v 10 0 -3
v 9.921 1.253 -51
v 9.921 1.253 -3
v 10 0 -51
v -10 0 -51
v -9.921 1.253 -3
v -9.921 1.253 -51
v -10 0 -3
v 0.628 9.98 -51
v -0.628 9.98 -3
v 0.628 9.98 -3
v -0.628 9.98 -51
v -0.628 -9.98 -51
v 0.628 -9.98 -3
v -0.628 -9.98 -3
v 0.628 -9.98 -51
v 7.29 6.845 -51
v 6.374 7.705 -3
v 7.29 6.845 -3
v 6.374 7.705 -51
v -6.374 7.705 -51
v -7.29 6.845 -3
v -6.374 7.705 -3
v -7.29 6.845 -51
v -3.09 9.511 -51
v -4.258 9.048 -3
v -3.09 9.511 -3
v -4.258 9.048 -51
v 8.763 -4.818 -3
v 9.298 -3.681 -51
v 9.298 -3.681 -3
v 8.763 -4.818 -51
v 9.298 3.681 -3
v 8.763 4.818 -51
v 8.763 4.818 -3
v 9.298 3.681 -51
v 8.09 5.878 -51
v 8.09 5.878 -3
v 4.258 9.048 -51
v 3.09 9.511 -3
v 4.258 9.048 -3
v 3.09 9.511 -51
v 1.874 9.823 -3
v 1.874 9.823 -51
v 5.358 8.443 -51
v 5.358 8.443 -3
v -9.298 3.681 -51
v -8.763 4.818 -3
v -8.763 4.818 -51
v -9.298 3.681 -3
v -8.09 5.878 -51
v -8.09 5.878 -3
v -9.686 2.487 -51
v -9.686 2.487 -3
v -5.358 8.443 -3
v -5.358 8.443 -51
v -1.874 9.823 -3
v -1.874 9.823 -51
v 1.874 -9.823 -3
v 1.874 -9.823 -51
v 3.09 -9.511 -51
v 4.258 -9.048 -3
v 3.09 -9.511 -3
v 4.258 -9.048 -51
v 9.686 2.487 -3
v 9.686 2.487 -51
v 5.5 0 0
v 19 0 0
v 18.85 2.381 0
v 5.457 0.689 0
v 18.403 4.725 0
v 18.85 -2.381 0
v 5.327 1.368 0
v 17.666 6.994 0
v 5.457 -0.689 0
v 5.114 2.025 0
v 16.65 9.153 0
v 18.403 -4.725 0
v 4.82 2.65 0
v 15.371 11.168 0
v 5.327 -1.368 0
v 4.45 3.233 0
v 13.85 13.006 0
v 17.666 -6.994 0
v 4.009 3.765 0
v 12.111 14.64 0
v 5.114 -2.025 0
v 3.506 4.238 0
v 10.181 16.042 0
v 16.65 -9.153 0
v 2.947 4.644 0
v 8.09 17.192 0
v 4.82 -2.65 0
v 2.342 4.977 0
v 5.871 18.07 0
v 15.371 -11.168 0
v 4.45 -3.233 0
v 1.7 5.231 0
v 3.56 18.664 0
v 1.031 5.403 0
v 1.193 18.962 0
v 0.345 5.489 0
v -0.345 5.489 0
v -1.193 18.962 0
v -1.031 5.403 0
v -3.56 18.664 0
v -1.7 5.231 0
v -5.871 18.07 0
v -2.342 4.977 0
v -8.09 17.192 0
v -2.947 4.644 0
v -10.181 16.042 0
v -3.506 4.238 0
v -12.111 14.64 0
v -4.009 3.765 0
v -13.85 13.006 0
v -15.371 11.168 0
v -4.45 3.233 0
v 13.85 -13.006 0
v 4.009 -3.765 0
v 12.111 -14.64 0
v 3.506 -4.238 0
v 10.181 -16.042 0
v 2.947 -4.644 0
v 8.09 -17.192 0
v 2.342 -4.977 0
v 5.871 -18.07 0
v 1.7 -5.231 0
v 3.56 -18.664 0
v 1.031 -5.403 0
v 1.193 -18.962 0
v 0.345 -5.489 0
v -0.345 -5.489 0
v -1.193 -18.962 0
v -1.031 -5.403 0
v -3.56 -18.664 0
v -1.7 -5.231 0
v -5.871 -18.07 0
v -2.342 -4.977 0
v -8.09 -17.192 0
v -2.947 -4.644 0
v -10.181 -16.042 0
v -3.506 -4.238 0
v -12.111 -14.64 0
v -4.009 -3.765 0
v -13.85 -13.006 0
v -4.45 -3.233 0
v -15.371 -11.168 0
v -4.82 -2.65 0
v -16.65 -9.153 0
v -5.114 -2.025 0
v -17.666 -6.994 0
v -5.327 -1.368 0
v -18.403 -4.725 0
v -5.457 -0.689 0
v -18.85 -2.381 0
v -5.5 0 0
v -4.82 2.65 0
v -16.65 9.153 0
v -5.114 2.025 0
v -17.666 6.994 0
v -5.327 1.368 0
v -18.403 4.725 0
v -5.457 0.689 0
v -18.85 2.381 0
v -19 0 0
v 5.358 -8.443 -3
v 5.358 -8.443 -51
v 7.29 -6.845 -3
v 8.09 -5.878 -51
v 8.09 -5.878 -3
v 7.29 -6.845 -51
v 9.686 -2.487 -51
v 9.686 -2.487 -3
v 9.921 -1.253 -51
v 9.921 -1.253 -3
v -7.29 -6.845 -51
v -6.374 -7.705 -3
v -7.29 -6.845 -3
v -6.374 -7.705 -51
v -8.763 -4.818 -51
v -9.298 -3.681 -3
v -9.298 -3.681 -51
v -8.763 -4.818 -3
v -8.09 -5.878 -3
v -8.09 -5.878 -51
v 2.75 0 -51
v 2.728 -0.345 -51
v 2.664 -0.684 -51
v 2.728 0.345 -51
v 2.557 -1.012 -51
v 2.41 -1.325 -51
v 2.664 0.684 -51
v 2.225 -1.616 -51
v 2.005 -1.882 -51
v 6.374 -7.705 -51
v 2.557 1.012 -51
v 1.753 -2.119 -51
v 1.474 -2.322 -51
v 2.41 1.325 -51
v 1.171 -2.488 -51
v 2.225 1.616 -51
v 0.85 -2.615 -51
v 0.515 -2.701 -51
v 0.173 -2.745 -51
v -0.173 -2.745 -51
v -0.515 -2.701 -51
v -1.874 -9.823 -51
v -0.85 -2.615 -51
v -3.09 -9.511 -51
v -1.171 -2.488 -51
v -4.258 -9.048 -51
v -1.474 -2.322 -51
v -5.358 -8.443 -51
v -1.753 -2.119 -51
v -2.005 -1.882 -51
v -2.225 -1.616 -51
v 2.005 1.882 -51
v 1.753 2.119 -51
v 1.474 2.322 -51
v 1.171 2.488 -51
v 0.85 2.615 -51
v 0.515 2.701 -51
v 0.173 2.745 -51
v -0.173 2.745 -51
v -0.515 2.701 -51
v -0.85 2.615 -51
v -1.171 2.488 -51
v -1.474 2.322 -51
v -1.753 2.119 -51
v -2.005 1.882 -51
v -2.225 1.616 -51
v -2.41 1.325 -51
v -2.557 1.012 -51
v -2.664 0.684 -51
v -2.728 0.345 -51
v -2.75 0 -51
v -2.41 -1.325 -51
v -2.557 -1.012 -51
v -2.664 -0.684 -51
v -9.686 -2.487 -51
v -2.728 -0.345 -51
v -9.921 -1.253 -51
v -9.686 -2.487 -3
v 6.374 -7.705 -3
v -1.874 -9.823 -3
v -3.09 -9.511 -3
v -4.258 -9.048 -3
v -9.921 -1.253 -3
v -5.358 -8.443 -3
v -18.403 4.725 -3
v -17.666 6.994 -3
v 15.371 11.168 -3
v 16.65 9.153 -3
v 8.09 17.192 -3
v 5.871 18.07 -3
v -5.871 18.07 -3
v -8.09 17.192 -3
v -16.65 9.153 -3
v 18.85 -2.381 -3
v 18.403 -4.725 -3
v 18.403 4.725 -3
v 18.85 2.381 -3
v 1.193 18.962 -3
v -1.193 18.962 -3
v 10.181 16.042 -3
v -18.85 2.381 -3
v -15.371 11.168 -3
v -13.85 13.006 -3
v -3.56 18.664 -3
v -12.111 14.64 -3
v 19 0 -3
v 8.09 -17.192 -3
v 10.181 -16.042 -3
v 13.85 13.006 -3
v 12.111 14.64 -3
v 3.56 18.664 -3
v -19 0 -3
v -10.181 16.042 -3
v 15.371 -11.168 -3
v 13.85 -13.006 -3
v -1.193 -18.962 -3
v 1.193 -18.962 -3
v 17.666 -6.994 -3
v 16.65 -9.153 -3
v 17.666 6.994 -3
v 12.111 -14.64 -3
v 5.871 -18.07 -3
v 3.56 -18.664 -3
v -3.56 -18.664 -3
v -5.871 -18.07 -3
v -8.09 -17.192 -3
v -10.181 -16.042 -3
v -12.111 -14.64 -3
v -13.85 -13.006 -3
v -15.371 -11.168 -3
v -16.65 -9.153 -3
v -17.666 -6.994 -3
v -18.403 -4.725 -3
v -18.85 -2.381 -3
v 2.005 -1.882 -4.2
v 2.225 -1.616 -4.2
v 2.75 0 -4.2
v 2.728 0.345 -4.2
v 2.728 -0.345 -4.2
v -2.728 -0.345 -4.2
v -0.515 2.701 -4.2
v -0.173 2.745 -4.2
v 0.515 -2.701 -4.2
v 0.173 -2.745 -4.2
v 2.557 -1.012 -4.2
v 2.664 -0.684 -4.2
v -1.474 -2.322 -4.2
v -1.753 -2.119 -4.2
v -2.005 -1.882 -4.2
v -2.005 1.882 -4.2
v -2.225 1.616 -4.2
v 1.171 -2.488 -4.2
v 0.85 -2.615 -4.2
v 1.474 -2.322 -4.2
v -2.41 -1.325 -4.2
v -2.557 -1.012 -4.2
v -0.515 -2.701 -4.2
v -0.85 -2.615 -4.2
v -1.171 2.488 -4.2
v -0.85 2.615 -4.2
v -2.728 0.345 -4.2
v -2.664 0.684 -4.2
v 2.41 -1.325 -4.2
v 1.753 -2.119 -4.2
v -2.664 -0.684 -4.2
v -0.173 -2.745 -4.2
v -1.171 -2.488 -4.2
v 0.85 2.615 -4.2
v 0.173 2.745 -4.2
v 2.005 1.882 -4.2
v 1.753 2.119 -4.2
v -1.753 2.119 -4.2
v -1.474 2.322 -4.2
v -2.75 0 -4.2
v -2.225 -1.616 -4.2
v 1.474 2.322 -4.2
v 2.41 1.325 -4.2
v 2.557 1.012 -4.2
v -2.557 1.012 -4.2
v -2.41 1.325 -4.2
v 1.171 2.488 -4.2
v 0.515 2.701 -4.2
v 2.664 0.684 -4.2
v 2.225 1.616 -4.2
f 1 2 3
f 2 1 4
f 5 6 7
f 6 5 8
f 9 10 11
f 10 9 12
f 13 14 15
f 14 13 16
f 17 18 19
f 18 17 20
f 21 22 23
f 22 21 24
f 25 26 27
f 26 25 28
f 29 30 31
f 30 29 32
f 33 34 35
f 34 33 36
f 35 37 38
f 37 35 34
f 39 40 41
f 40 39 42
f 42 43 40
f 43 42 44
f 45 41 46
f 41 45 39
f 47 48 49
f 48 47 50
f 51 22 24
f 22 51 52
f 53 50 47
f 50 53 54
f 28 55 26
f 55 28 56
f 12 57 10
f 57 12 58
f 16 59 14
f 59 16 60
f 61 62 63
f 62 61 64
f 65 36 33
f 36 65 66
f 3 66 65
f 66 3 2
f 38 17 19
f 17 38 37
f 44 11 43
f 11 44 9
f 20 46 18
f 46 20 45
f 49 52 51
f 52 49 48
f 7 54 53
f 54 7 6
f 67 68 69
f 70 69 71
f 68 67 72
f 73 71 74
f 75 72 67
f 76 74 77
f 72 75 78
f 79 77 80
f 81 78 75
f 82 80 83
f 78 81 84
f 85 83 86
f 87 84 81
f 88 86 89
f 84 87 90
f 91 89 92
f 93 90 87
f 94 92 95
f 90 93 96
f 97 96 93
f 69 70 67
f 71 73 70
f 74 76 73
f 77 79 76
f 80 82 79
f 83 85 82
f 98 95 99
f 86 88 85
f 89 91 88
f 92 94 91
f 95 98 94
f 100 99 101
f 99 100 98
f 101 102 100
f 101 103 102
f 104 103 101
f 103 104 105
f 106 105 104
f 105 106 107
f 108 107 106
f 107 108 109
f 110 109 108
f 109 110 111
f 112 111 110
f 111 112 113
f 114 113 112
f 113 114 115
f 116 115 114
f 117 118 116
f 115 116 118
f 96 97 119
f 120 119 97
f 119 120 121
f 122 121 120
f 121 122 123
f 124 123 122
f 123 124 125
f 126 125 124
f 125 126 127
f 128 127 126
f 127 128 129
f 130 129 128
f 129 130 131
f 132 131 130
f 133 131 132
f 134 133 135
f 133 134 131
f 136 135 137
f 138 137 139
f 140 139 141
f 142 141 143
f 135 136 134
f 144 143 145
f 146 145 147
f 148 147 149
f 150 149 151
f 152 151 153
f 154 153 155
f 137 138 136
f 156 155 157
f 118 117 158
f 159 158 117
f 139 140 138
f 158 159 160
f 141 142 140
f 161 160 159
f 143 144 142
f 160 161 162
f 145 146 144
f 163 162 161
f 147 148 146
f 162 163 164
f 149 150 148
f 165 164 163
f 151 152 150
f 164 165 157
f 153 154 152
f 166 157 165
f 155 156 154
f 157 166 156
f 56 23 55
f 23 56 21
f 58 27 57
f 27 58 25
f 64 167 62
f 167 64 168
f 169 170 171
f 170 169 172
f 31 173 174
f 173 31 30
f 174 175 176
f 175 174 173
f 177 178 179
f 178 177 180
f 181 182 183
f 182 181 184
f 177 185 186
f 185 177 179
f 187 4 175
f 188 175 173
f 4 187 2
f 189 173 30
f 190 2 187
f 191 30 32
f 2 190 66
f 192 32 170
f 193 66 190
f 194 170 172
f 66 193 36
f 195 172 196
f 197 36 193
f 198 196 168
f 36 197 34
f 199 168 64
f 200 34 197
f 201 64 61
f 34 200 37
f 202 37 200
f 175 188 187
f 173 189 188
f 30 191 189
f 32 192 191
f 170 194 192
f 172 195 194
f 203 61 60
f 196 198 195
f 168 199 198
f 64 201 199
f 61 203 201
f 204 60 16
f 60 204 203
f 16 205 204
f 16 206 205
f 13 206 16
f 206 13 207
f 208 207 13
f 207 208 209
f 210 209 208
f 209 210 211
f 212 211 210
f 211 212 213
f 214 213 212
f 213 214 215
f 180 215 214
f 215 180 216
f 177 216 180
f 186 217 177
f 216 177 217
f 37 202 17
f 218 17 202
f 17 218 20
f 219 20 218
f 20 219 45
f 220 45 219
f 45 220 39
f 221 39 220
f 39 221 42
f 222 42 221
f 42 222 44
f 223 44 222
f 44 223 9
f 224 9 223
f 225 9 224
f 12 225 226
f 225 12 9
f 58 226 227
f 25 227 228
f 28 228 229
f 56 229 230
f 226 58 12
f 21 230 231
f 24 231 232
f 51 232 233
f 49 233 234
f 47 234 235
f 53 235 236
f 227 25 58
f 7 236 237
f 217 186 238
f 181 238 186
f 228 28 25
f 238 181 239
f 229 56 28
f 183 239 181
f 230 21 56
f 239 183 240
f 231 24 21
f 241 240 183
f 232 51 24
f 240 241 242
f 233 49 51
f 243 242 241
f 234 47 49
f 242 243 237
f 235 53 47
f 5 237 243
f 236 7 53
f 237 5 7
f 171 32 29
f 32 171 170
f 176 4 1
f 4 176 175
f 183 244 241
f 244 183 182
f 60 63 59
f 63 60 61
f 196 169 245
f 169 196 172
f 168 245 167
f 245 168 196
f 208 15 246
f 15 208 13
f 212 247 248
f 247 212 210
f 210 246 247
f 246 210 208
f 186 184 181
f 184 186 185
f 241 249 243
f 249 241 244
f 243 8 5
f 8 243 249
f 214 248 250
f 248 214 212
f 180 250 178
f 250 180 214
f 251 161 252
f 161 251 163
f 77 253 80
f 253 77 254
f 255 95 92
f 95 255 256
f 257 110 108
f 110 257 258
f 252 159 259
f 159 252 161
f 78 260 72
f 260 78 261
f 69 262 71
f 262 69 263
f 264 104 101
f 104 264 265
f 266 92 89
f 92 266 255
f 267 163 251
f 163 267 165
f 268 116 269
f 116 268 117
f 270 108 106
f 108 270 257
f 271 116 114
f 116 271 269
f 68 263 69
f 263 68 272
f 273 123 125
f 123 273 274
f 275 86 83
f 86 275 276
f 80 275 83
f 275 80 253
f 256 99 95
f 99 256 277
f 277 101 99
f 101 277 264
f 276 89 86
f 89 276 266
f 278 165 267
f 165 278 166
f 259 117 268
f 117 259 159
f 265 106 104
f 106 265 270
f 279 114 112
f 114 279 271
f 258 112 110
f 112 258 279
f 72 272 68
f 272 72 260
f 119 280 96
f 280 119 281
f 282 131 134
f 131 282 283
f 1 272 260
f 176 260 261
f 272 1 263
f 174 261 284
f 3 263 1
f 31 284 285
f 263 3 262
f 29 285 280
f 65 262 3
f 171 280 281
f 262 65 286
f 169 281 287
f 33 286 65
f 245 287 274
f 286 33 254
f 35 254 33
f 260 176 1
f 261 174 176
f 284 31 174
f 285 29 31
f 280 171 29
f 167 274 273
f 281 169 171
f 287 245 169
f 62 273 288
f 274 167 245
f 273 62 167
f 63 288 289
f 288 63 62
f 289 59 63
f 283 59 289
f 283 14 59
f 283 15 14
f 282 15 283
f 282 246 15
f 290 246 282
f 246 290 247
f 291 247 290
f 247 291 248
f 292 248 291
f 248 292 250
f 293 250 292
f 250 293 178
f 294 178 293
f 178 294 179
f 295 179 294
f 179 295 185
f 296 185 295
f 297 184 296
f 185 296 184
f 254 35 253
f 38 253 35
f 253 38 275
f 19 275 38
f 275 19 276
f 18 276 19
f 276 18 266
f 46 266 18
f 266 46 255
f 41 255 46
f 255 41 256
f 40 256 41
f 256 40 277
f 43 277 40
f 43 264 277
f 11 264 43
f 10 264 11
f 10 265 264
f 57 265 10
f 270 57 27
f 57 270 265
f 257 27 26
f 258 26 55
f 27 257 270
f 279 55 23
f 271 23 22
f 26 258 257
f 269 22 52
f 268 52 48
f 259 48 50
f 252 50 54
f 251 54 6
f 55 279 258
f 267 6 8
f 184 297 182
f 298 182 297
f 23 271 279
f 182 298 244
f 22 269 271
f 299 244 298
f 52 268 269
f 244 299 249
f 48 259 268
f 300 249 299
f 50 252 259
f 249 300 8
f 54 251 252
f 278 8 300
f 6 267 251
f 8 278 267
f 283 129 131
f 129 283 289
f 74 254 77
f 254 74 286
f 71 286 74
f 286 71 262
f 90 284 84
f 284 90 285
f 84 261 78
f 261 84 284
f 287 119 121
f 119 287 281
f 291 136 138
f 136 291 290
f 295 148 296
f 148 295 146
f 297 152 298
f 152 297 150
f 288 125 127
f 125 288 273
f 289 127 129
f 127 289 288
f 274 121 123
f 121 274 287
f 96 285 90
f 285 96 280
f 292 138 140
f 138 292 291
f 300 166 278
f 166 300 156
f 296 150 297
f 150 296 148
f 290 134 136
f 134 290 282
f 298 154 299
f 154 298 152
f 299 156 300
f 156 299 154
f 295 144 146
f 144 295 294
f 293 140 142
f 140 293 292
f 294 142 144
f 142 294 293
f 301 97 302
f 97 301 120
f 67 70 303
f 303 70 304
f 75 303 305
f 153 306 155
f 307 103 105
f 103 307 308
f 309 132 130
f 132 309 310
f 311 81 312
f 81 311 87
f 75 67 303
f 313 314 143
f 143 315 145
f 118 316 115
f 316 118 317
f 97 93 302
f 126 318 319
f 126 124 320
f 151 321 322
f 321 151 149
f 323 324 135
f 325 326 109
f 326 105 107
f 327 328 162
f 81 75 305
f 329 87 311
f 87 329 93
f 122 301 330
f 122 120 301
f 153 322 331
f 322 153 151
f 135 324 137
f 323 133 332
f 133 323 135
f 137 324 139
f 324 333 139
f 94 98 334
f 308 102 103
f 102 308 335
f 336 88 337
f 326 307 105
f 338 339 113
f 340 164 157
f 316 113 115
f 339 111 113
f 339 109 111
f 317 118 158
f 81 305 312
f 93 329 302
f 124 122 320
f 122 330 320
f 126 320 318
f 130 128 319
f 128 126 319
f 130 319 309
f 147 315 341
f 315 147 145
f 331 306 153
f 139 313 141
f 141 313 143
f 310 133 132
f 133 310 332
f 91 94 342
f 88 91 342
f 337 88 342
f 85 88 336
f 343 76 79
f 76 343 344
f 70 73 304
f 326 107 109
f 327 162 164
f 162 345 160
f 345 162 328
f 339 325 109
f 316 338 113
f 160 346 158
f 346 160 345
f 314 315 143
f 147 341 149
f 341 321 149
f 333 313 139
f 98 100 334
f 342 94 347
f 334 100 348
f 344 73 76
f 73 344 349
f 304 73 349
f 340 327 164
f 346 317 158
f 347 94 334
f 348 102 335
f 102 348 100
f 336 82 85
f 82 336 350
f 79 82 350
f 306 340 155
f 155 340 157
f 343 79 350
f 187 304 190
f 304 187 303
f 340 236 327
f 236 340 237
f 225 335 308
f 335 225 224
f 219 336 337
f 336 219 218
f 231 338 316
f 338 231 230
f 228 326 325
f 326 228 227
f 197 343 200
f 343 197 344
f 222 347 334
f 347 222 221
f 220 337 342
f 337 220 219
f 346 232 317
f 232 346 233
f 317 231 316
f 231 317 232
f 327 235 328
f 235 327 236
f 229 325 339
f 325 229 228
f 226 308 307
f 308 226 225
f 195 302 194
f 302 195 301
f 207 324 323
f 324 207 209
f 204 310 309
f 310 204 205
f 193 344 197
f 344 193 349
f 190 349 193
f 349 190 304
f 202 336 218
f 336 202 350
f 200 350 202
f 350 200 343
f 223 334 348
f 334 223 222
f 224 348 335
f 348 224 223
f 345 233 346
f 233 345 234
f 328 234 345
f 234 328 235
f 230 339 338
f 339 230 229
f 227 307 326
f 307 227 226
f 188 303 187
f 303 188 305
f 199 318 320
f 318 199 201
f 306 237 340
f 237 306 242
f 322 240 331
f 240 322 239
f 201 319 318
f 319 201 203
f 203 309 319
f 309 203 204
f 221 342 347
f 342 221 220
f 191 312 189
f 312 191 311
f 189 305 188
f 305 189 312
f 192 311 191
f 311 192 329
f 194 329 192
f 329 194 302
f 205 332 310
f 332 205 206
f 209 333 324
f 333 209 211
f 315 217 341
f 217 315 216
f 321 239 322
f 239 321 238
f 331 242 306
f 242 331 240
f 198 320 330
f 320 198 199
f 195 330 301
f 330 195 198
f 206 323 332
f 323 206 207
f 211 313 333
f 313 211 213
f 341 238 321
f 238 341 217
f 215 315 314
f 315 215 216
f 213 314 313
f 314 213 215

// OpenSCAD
$fn = 50;


difference() {
	union() {
		translate(v = [0, 0, -51.0000000000]) {
			cylinder(h = 51, r = 10.0000000000);
		}
		translate(v = [0, 0, -3.0000000000]) {
			cylinder(h = 3, r = 19.0000000000);
		}
	}
	union() {
		translate(v = [0, 0, 0]) {
			rotate(a = [0, 0, 0]) {
				difference() {
					union() {
						#translate(v = [0, 0, -51.0000000000]) {
							cylinder(h = 51, r = 2.2500000000);
						}
						#translate(v = [0, 0, -4.2000000000]) {
							cylinder(h = 4.2000000000, r = 10.0000000000, r1 = 2.7500000000, r2 = 5.5000000000);
						}
						#translate(v = [0, 0, -51.0000000000]) {
							cylinder(h = 51, r = 2.7500000000);
						}
						#translate(v = [0, 0, -51.0000000000]) {
							cylinder(h = 51, r = 2.2500000000);
						}
					}
					union();
				}
			}
		}
	}
}
